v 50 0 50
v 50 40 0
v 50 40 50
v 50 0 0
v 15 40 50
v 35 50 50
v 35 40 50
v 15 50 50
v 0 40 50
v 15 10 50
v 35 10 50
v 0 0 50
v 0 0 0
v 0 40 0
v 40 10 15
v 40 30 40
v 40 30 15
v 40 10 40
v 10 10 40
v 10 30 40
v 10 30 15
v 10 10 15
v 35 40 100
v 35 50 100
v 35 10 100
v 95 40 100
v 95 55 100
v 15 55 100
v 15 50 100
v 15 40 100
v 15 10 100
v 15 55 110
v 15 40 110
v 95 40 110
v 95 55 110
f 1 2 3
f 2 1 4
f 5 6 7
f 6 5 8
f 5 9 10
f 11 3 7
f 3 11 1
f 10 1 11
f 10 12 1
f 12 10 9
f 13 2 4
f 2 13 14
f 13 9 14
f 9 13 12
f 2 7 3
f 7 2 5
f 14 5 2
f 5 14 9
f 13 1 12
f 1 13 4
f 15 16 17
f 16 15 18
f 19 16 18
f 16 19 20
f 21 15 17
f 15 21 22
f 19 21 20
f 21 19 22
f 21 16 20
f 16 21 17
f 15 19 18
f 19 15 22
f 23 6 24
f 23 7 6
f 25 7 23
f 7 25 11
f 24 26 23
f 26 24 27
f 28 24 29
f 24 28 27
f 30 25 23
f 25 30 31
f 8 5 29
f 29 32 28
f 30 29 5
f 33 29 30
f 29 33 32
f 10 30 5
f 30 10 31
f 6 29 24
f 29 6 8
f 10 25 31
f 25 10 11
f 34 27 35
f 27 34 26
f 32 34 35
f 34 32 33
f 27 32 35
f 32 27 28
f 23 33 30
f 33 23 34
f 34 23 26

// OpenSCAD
// Define dimensions for each component
module base_block() {
    difference() {
        // Adjusted base block dimensions to match the original model
        cube([50, 40, 50]); // Main block
        // Adjusted slot dimensions and position to match the original model
        translate([10, 10, 15]) cube([30, 20, 25]); // Slot
    }
}

module horizontal_arm() {
    // Adjusted horizontal arm dimensions to match the original model
    cube([80, 15, 10]); // Horizontal arm dimensions
}

module vertical_support() {
    // Adjusted vertical support dimensions to match the original model
    cube([20, 40, 50]); // Vertical support dimensions
}

// Assemble the model
module flexible_coupling() {
    // Layer 3: Base block with connector slot
    translate([0, 0, 0]) base_block();

    // Layer 2: Vertical support
    translate([15, 10, 50]) vertical_support();

    // Layer 1: Horizontal arm
    translate([15, 40, 100]) horizontal_arm();
}

// Render the model
flexible_coupling();
